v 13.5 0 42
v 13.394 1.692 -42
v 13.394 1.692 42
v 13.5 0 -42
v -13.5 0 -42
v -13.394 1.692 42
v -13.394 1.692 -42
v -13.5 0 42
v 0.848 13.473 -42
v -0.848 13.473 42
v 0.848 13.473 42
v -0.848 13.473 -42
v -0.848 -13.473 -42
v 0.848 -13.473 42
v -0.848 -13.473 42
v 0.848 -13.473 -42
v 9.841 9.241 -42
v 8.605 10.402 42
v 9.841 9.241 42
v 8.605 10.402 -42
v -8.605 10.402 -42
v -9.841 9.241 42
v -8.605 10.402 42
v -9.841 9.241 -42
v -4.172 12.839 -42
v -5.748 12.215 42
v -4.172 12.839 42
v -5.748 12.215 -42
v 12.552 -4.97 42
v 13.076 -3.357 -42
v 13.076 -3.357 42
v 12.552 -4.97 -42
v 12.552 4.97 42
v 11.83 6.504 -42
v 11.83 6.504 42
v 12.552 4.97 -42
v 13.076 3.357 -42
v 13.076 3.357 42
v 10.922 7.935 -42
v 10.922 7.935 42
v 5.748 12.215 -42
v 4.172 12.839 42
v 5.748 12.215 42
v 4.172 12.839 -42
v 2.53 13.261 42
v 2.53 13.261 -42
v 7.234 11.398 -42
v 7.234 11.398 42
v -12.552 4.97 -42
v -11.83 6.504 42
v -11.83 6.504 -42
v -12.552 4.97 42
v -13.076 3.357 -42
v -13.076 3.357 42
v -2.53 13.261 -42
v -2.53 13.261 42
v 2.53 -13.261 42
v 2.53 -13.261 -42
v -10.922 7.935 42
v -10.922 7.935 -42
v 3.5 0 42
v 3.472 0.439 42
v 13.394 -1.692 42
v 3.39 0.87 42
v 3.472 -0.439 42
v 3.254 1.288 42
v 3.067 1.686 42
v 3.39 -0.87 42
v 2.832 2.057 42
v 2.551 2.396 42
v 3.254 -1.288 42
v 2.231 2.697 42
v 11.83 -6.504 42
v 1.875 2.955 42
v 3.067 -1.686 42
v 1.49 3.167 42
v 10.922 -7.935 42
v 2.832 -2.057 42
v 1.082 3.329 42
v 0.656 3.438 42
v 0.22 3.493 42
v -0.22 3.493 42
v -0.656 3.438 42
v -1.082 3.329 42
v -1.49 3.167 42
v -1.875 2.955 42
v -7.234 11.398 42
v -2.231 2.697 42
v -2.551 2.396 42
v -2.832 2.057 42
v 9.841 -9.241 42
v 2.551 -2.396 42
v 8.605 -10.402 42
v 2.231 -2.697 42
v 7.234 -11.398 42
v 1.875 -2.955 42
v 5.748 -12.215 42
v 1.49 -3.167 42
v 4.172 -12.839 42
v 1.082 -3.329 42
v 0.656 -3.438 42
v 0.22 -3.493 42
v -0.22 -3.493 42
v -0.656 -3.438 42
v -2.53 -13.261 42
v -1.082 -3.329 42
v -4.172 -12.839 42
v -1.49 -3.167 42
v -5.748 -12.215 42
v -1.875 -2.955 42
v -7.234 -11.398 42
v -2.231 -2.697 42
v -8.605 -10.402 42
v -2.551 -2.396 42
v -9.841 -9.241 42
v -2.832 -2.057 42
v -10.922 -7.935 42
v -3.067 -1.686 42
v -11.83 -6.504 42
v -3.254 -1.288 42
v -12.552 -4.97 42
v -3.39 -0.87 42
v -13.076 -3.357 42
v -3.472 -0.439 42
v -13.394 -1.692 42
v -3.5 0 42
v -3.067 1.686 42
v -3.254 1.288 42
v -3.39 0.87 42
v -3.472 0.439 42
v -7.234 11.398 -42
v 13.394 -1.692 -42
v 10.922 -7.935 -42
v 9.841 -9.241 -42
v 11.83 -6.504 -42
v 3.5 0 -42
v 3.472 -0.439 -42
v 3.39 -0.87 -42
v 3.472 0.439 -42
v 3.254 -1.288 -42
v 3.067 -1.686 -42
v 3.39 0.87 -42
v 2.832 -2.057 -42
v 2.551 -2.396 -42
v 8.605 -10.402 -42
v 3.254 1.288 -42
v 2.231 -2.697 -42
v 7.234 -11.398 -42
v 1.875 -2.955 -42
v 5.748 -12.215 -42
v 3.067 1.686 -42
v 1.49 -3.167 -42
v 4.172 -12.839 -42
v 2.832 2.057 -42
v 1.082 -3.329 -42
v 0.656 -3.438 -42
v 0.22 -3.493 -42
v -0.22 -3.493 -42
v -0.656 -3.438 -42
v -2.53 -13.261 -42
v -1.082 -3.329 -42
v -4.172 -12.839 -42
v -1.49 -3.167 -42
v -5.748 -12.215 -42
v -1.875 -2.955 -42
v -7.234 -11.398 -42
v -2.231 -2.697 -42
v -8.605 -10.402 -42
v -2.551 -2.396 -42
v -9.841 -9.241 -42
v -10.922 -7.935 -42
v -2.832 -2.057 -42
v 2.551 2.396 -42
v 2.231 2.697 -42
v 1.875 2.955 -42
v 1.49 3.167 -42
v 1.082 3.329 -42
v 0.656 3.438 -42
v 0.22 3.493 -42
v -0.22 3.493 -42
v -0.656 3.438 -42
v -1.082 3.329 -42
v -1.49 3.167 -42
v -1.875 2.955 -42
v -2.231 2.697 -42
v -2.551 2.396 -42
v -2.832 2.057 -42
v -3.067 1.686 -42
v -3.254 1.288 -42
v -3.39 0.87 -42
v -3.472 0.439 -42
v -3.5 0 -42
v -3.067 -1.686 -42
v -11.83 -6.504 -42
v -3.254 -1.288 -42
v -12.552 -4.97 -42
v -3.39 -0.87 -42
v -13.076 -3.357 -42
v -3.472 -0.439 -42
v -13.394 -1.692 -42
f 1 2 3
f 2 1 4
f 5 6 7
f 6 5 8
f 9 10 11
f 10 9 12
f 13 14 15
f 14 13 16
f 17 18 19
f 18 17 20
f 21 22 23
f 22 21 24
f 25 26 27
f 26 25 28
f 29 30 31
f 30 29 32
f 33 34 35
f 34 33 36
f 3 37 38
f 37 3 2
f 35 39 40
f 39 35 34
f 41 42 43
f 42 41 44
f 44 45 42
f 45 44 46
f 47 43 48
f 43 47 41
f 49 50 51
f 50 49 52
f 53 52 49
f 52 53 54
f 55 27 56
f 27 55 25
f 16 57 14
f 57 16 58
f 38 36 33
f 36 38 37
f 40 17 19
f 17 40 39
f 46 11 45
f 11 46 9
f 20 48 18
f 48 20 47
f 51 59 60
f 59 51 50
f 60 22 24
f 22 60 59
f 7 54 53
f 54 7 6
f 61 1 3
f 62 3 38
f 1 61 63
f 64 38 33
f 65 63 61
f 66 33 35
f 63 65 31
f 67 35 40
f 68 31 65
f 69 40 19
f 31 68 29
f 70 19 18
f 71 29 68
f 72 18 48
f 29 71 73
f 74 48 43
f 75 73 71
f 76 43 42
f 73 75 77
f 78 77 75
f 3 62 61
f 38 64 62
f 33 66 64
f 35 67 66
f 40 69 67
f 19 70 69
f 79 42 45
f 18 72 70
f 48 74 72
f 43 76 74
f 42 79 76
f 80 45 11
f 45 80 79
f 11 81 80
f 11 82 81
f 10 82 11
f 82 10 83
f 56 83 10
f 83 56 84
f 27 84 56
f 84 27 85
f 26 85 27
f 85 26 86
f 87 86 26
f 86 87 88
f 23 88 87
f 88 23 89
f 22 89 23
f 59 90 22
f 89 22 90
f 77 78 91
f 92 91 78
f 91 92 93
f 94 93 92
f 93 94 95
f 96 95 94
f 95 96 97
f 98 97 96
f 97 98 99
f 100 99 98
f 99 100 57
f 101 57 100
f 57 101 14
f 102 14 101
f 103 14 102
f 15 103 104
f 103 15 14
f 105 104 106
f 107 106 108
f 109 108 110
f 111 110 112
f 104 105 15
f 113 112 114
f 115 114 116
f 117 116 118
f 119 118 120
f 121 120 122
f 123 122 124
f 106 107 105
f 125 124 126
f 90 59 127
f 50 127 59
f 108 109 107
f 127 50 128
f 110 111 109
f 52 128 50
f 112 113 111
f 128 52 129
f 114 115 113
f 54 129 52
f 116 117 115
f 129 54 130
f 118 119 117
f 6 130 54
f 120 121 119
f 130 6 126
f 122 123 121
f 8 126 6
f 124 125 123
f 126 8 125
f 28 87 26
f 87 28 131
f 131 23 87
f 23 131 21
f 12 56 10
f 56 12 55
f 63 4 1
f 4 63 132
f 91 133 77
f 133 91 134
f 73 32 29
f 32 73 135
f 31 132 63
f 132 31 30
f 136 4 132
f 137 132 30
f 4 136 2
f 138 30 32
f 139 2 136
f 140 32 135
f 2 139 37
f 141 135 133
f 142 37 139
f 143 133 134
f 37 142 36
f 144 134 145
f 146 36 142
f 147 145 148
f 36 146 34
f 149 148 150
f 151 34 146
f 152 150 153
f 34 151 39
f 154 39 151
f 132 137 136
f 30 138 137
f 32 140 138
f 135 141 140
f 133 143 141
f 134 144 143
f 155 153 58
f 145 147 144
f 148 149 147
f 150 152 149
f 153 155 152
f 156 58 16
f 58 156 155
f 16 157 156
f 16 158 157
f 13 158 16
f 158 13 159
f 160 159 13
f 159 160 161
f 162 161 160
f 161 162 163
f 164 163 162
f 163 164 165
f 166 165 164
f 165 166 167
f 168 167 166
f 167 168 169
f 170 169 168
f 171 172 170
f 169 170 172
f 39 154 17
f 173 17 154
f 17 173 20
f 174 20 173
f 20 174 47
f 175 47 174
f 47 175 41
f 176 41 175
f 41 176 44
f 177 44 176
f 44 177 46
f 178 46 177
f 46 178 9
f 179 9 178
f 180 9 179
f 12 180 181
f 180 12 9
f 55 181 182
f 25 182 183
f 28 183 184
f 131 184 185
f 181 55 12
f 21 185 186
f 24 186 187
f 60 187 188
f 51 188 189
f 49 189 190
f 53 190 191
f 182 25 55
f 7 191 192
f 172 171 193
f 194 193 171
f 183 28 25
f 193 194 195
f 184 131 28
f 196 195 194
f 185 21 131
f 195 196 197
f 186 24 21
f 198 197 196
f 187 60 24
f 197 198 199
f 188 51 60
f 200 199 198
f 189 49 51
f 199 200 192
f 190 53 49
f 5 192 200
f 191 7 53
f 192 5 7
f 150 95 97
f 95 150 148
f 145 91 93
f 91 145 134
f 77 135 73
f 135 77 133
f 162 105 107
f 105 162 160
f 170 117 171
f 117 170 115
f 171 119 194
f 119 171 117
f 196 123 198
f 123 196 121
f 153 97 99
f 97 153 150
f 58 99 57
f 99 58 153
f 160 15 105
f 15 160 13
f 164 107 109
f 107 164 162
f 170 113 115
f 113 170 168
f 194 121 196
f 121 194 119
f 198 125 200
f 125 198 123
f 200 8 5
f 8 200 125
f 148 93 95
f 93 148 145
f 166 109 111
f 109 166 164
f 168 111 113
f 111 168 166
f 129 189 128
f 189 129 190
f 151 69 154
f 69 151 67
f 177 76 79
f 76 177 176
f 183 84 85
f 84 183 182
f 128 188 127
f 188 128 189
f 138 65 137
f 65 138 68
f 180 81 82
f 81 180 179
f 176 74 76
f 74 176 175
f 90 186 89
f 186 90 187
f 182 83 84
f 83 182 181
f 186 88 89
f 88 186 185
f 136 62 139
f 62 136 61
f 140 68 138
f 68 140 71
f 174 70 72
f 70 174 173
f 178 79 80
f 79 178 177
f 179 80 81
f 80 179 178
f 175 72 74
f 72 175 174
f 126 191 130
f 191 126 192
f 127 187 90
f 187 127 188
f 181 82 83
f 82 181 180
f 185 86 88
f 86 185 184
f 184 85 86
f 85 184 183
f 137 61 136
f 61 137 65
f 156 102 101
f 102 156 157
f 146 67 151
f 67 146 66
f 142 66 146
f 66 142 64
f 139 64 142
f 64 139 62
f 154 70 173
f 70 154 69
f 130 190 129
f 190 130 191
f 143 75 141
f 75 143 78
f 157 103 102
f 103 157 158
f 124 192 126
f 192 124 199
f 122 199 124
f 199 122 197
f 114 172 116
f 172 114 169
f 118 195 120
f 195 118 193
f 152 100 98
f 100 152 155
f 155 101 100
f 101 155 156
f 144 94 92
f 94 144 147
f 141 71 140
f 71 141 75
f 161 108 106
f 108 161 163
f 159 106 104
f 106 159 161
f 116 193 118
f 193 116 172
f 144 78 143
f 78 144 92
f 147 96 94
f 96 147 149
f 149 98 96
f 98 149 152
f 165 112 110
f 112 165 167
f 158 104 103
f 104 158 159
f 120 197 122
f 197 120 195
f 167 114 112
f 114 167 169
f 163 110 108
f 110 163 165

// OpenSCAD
$fn = 50;


difference() {
	union() {
		translate(v = [0, 0, -42.0000000000]) {
			cylinder(h = 84, r = 13.5000000000);
		}
	}
	union() {
		translate(v = [0, 0, -100.0000000000]) {
			cylinder(h = 200, r = 3.5000000000);
		}
	}
}
